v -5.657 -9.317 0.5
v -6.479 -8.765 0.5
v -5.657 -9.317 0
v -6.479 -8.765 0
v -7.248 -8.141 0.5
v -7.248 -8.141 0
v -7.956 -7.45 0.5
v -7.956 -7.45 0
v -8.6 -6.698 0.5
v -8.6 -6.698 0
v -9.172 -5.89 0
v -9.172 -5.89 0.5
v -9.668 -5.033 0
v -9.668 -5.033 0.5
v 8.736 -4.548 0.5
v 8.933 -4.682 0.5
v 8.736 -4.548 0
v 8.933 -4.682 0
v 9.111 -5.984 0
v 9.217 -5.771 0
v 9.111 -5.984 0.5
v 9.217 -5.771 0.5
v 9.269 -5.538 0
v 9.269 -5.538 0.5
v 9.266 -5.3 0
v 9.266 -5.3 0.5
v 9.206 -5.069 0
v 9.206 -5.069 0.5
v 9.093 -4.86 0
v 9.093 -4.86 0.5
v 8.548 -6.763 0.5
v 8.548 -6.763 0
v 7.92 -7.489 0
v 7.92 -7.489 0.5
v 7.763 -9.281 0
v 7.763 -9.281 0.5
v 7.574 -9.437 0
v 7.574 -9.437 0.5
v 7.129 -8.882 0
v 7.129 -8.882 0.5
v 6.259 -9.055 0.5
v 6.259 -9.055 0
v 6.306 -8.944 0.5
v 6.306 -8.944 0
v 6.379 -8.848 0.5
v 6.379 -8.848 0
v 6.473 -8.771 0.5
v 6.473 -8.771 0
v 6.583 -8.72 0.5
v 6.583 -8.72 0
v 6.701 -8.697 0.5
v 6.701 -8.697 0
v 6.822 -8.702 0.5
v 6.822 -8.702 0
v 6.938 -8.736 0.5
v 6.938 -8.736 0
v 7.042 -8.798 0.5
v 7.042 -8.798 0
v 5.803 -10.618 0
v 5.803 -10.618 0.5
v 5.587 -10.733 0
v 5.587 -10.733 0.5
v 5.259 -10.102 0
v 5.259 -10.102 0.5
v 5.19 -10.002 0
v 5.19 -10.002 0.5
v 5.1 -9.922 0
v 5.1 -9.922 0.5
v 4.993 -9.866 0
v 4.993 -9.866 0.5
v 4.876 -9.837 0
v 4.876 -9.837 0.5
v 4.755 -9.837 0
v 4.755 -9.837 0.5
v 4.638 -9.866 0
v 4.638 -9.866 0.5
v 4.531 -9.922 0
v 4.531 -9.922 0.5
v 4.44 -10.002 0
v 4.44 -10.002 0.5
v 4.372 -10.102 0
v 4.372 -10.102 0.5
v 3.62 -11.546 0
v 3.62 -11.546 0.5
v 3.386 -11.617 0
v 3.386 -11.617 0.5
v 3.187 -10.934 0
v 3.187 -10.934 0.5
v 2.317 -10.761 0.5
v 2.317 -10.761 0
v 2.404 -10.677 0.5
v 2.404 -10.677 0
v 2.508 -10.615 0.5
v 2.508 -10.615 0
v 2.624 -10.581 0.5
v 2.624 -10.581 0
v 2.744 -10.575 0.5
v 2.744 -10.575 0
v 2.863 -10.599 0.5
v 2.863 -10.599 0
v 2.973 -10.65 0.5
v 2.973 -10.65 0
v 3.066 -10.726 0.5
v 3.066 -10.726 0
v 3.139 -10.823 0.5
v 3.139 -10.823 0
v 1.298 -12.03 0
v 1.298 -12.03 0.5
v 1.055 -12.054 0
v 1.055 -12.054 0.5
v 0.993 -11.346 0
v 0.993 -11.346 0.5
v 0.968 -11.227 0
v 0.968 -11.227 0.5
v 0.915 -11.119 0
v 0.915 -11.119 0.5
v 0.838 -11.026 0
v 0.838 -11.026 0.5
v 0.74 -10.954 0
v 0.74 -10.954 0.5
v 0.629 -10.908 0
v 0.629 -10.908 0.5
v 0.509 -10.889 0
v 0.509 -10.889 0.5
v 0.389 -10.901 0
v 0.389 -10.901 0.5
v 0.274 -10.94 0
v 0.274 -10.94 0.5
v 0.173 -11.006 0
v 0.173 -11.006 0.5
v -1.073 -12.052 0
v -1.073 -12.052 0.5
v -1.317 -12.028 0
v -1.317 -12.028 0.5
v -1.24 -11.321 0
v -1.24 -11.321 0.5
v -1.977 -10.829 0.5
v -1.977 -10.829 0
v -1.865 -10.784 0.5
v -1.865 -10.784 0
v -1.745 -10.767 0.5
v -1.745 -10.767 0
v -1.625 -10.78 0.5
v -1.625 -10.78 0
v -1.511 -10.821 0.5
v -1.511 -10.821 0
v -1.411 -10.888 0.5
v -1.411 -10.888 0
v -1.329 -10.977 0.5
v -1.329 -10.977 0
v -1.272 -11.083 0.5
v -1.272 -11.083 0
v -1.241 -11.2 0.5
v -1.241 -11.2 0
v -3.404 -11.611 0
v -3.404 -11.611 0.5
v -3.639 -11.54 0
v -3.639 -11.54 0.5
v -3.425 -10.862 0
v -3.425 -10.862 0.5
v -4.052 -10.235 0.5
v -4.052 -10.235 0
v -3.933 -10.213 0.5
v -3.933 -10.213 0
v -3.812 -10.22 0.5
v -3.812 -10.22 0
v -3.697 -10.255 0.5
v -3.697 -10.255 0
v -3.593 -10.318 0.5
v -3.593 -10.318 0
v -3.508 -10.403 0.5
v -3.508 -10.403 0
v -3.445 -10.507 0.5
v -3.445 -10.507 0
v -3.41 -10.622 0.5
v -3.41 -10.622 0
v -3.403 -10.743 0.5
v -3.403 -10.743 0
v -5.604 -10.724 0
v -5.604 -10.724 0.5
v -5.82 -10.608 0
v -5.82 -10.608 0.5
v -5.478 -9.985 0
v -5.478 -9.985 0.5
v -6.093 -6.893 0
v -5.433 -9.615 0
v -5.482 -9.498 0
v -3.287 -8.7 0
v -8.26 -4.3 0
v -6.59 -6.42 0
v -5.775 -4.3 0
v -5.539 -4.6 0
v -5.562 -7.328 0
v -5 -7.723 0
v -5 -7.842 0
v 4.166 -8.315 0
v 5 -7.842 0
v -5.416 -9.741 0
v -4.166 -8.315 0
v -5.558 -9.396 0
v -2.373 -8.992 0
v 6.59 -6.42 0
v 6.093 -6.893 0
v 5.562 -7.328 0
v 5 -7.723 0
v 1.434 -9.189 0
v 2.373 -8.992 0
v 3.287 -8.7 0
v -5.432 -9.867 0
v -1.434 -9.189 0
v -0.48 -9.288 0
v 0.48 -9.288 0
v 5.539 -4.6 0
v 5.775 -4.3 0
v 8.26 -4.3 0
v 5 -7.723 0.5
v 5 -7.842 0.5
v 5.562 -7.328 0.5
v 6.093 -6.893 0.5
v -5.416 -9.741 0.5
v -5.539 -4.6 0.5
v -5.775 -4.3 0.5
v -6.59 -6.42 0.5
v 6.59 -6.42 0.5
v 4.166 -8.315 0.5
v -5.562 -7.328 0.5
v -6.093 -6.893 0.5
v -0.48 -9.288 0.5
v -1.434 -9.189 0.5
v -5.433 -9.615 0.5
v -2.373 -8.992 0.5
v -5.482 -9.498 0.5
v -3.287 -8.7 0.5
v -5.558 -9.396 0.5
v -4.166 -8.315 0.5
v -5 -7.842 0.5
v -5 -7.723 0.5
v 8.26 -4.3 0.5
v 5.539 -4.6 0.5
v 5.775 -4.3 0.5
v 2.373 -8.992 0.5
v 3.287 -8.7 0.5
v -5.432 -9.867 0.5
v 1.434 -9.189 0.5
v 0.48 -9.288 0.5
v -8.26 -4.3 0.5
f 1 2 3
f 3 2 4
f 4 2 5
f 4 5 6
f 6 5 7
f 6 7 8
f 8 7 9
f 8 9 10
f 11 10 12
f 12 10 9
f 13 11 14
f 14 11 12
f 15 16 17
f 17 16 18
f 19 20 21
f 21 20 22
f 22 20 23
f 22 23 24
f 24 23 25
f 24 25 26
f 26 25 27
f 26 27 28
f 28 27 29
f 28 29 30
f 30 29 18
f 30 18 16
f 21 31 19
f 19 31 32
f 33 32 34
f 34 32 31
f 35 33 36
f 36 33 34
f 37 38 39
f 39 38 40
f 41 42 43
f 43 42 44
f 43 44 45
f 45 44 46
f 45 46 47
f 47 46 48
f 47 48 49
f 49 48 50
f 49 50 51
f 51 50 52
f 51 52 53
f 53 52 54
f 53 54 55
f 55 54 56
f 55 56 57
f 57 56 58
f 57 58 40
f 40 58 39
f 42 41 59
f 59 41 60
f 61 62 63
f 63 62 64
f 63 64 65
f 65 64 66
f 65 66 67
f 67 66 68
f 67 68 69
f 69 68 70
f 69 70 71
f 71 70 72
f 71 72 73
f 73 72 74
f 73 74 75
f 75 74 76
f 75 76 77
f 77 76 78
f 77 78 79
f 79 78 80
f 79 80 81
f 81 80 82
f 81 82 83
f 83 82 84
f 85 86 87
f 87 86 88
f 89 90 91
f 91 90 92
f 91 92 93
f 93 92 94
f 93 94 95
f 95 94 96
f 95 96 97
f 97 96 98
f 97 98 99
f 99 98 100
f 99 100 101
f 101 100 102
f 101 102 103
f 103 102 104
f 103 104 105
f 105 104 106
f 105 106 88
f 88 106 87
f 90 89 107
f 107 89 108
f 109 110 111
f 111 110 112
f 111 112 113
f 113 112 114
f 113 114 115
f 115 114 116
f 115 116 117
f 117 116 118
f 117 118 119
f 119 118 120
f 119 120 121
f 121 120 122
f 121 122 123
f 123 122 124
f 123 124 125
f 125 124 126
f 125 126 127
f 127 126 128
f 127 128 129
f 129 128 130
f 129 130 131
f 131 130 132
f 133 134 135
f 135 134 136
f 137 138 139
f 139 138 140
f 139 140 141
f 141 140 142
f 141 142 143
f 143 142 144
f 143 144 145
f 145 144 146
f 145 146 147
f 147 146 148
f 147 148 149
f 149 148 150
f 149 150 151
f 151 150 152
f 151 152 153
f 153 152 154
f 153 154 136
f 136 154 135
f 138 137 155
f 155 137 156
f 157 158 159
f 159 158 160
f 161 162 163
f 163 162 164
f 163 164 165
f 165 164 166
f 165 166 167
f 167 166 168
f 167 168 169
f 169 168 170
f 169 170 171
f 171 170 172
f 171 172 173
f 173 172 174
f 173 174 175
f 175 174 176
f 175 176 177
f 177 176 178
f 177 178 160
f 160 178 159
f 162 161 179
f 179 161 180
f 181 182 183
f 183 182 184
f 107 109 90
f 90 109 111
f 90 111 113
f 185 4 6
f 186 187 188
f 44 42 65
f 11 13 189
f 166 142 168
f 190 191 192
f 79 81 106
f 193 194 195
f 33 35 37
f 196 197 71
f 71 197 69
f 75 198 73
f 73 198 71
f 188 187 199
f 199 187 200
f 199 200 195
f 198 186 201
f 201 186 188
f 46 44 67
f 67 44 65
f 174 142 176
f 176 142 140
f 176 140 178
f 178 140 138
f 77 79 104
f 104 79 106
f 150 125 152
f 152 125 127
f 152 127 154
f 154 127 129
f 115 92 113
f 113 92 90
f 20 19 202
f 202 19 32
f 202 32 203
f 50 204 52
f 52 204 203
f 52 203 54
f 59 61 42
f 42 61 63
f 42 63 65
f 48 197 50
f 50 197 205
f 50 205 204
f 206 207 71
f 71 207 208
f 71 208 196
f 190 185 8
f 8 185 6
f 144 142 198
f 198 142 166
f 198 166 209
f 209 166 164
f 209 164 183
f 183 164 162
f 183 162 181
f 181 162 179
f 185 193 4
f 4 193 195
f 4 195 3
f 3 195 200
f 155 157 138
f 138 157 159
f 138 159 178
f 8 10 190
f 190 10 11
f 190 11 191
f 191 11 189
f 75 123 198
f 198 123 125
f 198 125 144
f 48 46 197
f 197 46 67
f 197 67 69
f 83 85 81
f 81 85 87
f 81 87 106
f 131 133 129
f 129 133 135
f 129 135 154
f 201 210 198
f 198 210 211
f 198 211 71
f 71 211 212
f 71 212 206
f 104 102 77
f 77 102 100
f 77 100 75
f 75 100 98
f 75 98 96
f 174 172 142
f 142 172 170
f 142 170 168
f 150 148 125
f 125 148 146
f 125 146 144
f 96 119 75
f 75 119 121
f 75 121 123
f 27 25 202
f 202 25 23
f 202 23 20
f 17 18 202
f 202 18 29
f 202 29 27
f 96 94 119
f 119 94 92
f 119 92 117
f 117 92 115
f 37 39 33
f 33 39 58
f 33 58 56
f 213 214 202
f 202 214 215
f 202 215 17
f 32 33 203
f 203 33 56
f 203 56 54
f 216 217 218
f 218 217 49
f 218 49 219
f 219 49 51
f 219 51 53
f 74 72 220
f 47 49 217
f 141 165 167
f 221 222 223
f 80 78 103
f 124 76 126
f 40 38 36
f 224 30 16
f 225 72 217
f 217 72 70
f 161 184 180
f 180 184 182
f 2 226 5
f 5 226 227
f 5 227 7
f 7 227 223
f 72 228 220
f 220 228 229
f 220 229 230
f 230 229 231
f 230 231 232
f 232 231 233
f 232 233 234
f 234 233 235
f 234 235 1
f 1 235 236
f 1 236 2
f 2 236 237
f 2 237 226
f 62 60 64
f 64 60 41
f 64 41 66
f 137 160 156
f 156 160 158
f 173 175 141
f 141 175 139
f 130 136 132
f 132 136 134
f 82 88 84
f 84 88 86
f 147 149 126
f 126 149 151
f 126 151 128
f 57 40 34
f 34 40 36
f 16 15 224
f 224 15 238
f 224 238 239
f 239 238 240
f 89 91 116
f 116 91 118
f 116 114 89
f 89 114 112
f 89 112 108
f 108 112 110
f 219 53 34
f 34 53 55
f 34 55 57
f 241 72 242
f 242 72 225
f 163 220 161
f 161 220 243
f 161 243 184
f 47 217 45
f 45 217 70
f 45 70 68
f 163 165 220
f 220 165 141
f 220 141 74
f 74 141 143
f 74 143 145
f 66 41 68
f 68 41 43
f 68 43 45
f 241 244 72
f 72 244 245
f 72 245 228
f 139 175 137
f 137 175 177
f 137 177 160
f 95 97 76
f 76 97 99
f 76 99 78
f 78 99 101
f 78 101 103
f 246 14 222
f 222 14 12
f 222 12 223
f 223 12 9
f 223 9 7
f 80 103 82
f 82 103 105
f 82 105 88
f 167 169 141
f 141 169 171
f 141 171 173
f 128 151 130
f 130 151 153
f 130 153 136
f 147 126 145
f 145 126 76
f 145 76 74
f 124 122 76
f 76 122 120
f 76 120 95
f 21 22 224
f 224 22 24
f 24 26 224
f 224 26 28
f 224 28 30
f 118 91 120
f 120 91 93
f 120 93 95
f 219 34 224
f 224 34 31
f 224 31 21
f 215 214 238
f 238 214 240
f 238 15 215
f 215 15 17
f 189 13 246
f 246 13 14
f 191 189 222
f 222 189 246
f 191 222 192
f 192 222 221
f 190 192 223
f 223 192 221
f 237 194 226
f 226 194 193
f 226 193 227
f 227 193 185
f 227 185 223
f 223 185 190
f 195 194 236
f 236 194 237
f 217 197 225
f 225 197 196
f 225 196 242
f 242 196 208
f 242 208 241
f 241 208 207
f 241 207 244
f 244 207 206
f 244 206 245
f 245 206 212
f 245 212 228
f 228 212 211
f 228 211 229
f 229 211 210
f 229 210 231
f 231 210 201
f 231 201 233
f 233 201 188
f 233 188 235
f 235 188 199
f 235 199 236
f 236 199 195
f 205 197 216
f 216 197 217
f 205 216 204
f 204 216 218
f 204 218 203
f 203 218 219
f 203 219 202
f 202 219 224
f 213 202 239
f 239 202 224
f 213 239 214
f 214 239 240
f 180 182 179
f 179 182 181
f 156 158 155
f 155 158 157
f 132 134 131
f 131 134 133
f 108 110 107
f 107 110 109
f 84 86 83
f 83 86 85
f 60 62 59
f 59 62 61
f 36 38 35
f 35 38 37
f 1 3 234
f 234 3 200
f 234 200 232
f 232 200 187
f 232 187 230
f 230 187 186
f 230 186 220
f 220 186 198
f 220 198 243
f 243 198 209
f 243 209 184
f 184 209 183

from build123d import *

# Parameters (mm, degrees)
OTHER_10076_5_DEPTH = 0.5
CUT_EXTRUDE1_START  = -0.5
CUT_EXTRUDE1_DEPTH  = 0.5


# Read off the part's stored shape, not the designer's step: 10076-5
with BuildPart() as part:
    # Other 10076-5 outline → Other 10076-5 (new body)
    with BuildSketch(Plane.XY):
        with BuildLine():
            ThreePointArc((7.573674013, -9.436602245), (7.668819519, -9.359444812), (7.763179028, -9.281328104))
            Line((7.763179028, -9.281328104), (7.919995926, -7.488902759))
            ThreePointArc((7.919995926, -7.488902759), (8.548470738, -6.76266575), (9.110578105, -5.983925684))
            ThreePointArc((9.110578105, -5.983925684), (9.242448569, -5.182849851), (8.736493865, -4.547930843))
            Line((8.736493865, -4.547930843), (8.260223146, -4.3))
            Line((8.260223146, -4.3), (5.774945887, -4.3))
            ThreePointArc((5.774945887, -4.3), (5.659072475, -4.451392897), (5.53923133, -4.5996648))
            Line((5.53923133, -4.5996648), (6.59, -6.419649523))
            ThreePointArc((6.59, -6.419649523), (5.831509763, -7.1157216), (5, -7.722693831))
            Line((5, -7.722693831), (5, -7.841555968))
            ThreePointArc((5, -7.841555968), (0, -9.3), (-5, -7.841555968))
            Line((-5, -7.841555968), (-5, -7.722693831))
            ThreePointArc((-5, -7.722693831), (-5.831509763, -7.1157216), (-6.59, -6.419649523))
            Line((-6.59, -6.419649523), (-5.53923133, -4.5996648))
            ThreePointArc((-5.53923133, -4.5996648), (-5.659072475, -4.451392897), (-5.774945887, -4.3))
            Line((-5.774945887, -4.3), (-8.260223146, -4.3))
            Line((-8.260223146, -4.3), (-10.732831081, -5.58715822))
            ThreePointArc((-10.732831081, -5.58715822), (-10.675718173, -5.6955282), (-10.617511084, -5.803314431))
            Line((-10.617511084, -5.803314431), (-9.055174855, -6.258693914))
            ThreePointArc((-9.055174855, -6.258693914), (-8.704696722, -6.64117368), (-8.882127626, -7.128661083))
            Line((-8.882127626, -7.128661083), (-9.436602245, -7.573674013))
            ThreePointArc((-9.436602245, -7.573674013), (-9.359444812, -7.668819519), (-9.281328104, -7.763179028))
            Line((-9.281328104, -7.763179028), (-7.660171598, -7.905011844))
            ThreePointArc((-7.660171598, -7.905011844), (-7.241809703, -8.211767477), (-7.320727248, -8.724502998))
            Line((-7.320727248, -8.724502998), (-7.777730077, -9.269137762))
            ThreePointArc((-7.777730077, -9.269137762), (-7.683493234, -9.347402405), (-7.588468891, -9.424709008))
            Line((-7.588468891, -9.424709008), (-5.970792243, -9.247544602))
            ThreePointArc((-5.970792243, -9.247544602), (-5.500623999, -9.466787654), (-5.477995427, -9.985067155))
            Line((-5.477995427, -9.985067155), (-5.819964104, -10.608393744))
            ThreePointArc((-5.819964104, -10.608393744), (-5.712269322, -10.666769858), (-5.603989074, -10.724052707))
            Line((-5.603989074, -10.724052707), (-4.05195869, -10.234699407))
            ThreePointArc((-4.05195869, -10.234699407), (-3.548052399, -10.358004491), (-3.424747314, -10.861910782))
            Line((-3.424747314, -10.861910782), (-3.638540174, -11.539975104))
            ThreePointArc((-3.638540174, -11.539975104), (-3.521526102, -11.576219327), (-3.404151099, -11.611277074))
            Line((-3.404151099, -11.611277074), (-1.977410637, -10.828540453))
            ThreePointArc((-1.977410637, -10.828540453), (-1.459131136, -10.851169025), (-1.239888083, -11.321337268))
            Line((-1.239888083, -11.321337268), (-1.317289186, -12.028081692))
            ThreePointArc((-1.317289186, -12.028081692), (-1.195452609, -12.04080118), (-1.073493507, -12.052286575))
            Line((-1.073493507, -12.052286575), (0.173128198, -11.006246762))
            ThreePointArc((0.173128198, -11.006246762), (0.685863719, -10.927329218), (0.992619352, -11.345691113))
            Line((0.992619352, -11.345691113), (1.054584487, -12.053955847))
            ThreePointArc((1.054584487, -12.053955847), (1.176561457, -12.042661796), (1.298417839, -12.030133462))
            Line((1.298417839, -12.030133462), (2.317013814, -10.760989181))
            ThreePointArc((2.317013814, -10.760989181), (2.804501216, -10.583558277), (3.186980982, -10.93403641))
            Line((3.186980982, -10.93403641), (3.38593107, -11.616603238))
            ThreePointArc((3.38593107, -11.616603238), (3.503360927, -11.581729673), (3.620431715, -11.545669067))
            Line((3.620431715, -11.545669067), (4.371857887, -10.10219282))
            ThreePointArc((4.371857887, -10.10219282), (4.815363304, -9.833067127), (5.258868721, -10.10219282))
            Line((5.258868721, -10.10219282), (5.58715822, -10.732831081))
            ThreePointArc((5.58715822, -10.732831081), (5.6955282, -10.675718173), (5.803314431, -10.617511084))
            Line((5.803314431, -10.617511084), (6.258693914, -9.055174855))
            ThreePointArc((6.258693914, -9.055174855), (6.64117368, -8.704696722), (7.128661083, -8.882127626))
            Line((7.128661083, -8.882127626), (7.573674013, -9.436602245))
        make_face()
    extrude(amount=OTHER_10076_5_DEPTH)

    # Sketch1 → Cut-Extrude1 (cut)
    with BuildSketch(Plane.XY.offset(0.5).offset(CUT_EXTRUDE1_START)):
        with BuildLine():
            Line((-9.668418082, -5.033059884), (-10.732831081, -5.58715822))
            ThreePointArc((-10.732831081, -5.58715822), (-9.359444812, -7.668819519), (-7.588468891, -9.424709008))
            Line((-7.588468891, -9.424709008), (-5.970792243, -9.247544602))
            ThreePointArc((-5.970792243, -9.247544602), (-5.808080301, -9.256437784), (-5.656869384, -9.317179228))
            ThreePointArc((-5.656869384, -9.317179228), (-7.956414306, -7.450199419), (-9.668418082, -5.033059884))
        make_face()
    extrude(amount=CUT_EXTRUDE1_DEPTH, mode=Mode.SUBTRACT)


solid = part.part
